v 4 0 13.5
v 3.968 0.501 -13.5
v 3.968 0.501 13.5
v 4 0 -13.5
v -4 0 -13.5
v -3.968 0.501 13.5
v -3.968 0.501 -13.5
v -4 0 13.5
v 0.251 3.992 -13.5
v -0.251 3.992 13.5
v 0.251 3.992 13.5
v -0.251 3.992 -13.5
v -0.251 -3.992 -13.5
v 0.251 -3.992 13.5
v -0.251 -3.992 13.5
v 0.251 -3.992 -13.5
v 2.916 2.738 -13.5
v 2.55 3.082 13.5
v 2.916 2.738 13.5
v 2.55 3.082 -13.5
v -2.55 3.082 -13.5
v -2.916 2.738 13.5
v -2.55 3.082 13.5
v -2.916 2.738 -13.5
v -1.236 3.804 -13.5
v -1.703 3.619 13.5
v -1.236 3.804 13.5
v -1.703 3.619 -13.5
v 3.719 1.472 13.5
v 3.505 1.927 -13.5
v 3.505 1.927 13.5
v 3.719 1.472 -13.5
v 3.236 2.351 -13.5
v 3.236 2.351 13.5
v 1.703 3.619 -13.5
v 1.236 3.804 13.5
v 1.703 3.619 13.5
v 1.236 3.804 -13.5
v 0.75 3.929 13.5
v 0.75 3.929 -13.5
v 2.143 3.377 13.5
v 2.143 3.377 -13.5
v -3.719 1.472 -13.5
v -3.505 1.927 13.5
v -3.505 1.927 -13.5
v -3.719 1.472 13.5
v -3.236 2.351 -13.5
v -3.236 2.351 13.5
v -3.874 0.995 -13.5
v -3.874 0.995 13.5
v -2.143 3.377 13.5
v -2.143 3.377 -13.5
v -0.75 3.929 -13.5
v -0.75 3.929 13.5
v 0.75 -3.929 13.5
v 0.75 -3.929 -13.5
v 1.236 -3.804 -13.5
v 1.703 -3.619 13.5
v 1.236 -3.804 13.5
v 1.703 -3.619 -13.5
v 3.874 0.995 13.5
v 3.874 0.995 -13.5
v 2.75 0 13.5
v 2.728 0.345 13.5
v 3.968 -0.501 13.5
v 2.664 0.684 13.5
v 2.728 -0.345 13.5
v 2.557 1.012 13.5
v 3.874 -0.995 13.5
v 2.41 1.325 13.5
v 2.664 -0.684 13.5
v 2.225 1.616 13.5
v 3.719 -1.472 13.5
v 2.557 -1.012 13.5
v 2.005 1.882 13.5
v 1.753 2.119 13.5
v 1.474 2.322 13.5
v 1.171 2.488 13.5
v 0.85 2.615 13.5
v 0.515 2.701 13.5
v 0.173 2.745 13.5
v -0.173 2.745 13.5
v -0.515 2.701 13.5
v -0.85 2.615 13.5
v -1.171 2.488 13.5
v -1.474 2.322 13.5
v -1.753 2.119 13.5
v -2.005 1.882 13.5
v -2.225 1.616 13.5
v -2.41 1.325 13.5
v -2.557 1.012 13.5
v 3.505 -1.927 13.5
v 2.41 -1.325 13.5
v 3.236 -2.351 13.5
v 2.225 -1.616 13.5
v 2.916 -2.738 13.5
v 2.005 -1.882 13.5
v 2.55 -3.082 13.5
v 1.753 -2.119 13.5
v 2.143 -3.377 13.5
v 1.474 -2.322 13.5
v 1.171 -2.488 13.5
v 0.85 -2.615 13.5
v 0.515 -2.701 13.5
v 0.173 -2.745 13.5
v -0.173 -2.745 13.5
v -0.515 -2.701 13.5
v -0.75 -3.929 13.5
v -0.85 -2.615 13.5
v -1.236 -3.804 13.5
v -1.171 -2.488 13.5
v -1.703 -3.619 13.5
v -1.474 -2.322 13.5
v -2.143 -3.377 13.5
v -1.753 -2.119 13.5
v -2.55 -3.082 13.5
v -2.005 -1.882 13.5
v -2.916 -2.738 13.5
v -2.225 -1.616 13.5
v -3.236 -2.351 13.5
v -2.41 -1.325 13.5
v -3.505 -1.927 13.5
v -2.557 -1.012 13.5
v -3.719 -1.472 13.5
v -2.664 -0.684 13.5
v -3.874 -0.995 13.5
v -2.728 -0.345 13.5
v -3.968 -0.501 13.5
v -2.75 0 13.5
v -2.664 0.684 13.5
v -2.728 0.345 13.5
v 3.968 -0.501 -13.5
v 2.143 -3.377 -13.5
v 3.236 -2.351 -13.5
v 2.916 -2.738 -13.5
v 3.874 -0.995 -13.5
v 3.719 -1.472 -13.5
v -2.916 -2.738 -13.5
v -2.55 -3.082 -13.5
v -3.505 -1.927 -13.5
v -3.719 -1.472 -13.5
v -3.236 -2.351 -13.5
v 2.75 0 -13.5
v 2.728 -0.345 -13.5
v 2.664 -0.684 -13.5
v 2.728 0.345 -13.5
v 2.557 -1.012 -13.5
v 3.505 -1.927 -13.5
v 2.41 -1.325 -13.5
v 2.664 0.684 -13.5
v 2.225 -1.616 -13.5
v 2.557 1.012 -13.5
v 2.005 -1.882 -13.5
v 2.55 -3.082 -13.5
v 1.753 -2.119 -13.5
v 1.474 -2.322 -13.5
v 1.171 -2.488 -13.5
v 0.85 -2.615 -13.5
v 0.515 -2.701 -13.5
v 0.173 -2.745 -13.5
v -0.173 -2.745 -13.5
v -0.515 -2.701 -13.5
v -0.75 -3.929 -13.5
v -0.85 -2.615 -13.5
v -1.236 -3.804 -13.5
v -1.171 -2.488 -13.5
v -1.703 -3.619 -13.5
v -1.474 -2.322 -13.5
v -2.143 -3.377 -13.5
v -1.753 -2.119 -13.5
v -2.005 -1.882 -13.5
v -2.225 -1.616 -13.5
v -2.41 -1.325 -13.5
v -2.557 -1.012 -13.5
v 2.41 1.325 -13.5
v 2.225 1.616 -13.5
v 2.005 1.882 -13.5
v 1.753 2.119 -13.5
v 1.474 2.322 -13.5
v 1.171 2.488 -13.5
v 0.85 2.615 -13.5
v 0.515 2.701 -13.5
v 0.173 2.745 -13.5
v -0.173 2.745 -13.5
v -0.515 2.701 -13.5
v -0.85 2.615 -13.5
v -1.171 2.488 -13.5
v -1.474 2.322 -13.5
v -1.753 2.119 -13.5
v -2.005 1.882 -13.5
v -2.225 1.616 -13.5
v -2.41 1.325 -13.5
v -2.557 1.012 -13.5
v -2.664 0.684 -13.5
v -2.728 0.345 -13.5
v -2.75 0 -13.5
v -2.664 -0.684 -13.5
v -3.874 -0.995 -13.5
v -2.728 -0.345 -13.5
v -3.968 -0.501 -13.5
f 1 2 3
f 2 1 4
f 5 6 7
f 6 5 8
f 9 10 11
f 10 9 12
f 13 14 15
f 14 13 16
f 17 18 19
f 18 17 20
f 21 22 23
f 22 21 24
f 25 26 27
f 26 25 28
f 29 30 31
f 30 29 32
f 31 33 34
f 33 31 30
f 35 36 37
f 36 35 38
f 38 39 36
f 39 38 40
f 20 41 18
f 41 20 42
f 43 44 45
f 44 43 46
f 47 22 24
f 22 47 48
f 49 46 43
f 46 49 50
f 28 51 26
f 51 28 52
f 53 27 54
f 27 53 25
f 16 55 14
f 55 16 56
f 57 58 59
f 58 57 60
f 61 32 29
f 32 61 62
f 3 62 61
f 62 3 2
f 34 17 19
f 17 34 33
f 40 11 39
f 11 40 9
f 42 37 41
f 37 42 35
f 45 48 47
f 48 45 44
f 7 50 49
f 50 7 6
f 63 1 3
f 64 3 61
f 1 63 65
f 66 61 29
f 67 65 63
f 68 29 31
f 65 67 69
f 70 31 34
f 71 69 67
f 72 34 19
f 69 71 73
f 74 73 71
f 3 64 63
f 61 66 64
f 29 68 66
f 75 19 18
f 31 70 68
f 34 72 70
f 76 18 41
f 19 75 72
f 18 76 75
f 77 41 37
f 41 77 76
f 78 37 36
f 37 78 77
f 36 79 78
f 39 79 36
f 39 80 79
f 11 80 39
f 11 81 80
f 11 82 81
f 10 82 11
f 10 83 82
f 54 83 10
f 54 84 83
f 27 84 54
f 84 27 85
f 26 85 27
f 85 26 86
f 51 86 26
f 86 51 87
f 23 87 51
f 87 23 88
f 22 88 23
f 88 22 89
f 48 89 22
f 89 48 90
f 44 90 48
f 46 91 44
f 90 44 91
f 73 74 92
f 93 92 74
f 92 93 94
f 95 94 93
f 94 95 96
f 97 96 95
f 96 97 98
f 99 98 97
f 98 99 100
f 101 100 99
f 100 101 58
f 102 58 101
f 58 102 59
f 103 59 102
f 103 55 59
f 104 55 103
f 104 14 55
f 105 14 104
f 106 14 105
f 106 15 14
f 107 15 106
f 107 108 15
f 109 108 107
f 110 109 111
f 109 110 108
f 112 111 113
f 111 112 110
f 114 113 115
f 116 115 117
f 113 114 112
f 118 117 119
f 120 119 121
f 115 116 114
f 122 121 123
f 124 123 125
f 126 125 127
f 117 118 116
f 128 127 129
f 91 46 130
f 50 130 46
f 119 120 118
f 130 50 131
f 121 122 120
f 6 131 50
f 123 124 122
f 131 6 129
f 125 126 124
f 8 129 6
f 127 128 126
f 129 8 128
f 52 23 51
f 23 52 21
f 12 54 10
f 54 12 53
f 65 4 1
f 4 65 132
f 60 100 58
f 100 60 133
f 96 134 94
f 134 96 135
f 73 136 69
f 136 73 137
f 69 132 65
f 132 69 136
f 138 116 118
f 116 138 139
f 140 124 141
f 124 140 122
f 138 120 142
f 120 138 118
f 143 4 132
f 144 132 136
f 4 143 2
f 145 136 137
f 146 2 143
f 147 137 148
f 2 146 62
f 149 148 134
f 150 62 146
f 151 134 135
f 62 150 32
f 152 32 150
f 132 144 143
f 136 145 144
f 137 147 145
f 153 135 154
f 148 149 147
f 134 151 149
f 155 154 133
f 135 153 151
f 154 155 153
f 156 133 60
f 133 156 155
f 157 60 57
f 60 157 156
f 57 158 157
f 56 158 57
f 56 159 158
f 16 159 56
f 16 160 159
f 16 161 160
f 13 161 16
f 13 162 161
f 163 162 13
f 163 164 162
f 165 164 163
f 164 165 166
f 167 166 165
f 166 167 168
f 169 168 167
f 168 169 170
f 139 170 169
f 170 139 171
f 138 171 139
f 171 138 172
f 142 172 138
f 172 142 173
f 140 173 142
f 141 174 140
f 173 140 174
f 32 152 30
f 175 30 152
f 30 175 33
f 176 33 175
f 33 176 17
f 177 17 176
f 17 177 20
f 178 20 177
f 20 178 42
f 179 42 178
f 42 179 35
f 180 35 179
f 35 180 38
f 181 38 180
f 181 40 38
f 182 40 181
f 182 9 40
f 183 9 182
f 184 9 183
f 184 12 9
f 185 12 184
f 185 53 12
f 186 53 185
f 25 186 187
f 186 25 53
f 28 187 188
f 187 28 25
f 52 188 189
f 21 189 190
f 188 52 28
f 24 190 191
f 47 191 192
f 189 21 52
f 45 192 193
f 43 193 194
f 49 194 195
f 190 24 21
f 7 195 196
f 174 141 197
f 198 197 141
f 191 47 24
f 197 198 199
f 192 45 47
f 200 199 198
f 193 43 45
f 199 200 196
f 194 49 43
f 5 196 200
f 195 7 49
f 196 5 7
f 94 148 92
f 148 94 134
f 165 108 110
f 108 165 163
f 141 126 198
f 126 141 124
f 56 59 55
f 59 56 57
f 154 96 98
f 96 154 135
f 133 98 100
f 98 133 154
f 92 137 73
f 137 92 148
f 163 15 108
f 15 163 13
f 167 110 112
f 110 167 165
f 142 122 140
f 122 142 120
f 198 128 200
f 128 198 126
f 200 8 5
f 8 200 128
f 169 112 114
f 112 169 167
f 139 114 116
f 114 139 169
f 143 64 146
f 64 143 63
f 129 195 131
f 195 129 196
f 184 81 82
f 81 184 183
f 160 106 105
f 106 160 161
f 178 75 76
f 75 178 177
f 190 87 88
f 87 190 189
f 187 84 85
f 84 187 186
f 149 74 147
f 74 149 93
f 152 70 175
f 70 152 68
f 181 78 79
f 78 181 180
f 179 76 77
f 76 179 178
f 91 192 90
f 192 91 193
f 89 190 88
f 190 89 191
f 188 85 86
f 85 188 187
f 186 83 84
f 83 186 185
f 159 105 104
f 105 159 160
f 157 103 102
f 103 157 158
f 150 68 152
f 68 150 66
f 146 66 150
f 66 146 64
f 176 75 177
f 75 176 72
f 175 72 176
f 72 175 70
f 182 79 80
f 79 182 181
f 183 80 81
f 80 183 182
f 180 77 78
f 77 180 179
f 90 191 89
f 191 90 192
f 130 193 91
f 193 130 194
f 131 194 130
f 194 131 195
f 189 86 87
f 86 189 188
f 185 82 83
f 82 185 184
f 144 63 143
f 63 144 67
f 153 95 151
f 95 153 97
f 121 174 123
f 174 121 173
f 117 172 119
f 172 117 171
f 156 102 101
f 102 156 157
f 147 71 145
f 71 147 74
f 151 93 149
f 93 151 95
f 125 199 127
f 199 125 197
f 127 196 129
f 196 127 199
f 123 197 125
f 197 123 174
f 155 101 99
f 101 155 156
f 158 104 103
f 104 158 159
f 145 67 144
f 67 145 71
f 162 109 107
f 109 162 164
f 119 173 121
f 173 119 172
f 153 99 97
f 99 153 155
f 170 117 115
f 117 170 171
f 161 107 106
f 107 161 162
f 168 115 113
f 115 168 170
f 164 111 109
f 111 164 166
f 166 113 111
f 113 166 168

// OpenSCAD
$fn = 50;


difference() {
	union() {
		translate(v = [0, 0, -13.5000000000]) {
			cylinder(h = 27, r = 4.0000000000);
		}
	}
	union() {
		translate(v = [0, 0, -100.0000000000]) {
			cylinder(h = 200, r = 2.7500000000);
		}
	}
}
